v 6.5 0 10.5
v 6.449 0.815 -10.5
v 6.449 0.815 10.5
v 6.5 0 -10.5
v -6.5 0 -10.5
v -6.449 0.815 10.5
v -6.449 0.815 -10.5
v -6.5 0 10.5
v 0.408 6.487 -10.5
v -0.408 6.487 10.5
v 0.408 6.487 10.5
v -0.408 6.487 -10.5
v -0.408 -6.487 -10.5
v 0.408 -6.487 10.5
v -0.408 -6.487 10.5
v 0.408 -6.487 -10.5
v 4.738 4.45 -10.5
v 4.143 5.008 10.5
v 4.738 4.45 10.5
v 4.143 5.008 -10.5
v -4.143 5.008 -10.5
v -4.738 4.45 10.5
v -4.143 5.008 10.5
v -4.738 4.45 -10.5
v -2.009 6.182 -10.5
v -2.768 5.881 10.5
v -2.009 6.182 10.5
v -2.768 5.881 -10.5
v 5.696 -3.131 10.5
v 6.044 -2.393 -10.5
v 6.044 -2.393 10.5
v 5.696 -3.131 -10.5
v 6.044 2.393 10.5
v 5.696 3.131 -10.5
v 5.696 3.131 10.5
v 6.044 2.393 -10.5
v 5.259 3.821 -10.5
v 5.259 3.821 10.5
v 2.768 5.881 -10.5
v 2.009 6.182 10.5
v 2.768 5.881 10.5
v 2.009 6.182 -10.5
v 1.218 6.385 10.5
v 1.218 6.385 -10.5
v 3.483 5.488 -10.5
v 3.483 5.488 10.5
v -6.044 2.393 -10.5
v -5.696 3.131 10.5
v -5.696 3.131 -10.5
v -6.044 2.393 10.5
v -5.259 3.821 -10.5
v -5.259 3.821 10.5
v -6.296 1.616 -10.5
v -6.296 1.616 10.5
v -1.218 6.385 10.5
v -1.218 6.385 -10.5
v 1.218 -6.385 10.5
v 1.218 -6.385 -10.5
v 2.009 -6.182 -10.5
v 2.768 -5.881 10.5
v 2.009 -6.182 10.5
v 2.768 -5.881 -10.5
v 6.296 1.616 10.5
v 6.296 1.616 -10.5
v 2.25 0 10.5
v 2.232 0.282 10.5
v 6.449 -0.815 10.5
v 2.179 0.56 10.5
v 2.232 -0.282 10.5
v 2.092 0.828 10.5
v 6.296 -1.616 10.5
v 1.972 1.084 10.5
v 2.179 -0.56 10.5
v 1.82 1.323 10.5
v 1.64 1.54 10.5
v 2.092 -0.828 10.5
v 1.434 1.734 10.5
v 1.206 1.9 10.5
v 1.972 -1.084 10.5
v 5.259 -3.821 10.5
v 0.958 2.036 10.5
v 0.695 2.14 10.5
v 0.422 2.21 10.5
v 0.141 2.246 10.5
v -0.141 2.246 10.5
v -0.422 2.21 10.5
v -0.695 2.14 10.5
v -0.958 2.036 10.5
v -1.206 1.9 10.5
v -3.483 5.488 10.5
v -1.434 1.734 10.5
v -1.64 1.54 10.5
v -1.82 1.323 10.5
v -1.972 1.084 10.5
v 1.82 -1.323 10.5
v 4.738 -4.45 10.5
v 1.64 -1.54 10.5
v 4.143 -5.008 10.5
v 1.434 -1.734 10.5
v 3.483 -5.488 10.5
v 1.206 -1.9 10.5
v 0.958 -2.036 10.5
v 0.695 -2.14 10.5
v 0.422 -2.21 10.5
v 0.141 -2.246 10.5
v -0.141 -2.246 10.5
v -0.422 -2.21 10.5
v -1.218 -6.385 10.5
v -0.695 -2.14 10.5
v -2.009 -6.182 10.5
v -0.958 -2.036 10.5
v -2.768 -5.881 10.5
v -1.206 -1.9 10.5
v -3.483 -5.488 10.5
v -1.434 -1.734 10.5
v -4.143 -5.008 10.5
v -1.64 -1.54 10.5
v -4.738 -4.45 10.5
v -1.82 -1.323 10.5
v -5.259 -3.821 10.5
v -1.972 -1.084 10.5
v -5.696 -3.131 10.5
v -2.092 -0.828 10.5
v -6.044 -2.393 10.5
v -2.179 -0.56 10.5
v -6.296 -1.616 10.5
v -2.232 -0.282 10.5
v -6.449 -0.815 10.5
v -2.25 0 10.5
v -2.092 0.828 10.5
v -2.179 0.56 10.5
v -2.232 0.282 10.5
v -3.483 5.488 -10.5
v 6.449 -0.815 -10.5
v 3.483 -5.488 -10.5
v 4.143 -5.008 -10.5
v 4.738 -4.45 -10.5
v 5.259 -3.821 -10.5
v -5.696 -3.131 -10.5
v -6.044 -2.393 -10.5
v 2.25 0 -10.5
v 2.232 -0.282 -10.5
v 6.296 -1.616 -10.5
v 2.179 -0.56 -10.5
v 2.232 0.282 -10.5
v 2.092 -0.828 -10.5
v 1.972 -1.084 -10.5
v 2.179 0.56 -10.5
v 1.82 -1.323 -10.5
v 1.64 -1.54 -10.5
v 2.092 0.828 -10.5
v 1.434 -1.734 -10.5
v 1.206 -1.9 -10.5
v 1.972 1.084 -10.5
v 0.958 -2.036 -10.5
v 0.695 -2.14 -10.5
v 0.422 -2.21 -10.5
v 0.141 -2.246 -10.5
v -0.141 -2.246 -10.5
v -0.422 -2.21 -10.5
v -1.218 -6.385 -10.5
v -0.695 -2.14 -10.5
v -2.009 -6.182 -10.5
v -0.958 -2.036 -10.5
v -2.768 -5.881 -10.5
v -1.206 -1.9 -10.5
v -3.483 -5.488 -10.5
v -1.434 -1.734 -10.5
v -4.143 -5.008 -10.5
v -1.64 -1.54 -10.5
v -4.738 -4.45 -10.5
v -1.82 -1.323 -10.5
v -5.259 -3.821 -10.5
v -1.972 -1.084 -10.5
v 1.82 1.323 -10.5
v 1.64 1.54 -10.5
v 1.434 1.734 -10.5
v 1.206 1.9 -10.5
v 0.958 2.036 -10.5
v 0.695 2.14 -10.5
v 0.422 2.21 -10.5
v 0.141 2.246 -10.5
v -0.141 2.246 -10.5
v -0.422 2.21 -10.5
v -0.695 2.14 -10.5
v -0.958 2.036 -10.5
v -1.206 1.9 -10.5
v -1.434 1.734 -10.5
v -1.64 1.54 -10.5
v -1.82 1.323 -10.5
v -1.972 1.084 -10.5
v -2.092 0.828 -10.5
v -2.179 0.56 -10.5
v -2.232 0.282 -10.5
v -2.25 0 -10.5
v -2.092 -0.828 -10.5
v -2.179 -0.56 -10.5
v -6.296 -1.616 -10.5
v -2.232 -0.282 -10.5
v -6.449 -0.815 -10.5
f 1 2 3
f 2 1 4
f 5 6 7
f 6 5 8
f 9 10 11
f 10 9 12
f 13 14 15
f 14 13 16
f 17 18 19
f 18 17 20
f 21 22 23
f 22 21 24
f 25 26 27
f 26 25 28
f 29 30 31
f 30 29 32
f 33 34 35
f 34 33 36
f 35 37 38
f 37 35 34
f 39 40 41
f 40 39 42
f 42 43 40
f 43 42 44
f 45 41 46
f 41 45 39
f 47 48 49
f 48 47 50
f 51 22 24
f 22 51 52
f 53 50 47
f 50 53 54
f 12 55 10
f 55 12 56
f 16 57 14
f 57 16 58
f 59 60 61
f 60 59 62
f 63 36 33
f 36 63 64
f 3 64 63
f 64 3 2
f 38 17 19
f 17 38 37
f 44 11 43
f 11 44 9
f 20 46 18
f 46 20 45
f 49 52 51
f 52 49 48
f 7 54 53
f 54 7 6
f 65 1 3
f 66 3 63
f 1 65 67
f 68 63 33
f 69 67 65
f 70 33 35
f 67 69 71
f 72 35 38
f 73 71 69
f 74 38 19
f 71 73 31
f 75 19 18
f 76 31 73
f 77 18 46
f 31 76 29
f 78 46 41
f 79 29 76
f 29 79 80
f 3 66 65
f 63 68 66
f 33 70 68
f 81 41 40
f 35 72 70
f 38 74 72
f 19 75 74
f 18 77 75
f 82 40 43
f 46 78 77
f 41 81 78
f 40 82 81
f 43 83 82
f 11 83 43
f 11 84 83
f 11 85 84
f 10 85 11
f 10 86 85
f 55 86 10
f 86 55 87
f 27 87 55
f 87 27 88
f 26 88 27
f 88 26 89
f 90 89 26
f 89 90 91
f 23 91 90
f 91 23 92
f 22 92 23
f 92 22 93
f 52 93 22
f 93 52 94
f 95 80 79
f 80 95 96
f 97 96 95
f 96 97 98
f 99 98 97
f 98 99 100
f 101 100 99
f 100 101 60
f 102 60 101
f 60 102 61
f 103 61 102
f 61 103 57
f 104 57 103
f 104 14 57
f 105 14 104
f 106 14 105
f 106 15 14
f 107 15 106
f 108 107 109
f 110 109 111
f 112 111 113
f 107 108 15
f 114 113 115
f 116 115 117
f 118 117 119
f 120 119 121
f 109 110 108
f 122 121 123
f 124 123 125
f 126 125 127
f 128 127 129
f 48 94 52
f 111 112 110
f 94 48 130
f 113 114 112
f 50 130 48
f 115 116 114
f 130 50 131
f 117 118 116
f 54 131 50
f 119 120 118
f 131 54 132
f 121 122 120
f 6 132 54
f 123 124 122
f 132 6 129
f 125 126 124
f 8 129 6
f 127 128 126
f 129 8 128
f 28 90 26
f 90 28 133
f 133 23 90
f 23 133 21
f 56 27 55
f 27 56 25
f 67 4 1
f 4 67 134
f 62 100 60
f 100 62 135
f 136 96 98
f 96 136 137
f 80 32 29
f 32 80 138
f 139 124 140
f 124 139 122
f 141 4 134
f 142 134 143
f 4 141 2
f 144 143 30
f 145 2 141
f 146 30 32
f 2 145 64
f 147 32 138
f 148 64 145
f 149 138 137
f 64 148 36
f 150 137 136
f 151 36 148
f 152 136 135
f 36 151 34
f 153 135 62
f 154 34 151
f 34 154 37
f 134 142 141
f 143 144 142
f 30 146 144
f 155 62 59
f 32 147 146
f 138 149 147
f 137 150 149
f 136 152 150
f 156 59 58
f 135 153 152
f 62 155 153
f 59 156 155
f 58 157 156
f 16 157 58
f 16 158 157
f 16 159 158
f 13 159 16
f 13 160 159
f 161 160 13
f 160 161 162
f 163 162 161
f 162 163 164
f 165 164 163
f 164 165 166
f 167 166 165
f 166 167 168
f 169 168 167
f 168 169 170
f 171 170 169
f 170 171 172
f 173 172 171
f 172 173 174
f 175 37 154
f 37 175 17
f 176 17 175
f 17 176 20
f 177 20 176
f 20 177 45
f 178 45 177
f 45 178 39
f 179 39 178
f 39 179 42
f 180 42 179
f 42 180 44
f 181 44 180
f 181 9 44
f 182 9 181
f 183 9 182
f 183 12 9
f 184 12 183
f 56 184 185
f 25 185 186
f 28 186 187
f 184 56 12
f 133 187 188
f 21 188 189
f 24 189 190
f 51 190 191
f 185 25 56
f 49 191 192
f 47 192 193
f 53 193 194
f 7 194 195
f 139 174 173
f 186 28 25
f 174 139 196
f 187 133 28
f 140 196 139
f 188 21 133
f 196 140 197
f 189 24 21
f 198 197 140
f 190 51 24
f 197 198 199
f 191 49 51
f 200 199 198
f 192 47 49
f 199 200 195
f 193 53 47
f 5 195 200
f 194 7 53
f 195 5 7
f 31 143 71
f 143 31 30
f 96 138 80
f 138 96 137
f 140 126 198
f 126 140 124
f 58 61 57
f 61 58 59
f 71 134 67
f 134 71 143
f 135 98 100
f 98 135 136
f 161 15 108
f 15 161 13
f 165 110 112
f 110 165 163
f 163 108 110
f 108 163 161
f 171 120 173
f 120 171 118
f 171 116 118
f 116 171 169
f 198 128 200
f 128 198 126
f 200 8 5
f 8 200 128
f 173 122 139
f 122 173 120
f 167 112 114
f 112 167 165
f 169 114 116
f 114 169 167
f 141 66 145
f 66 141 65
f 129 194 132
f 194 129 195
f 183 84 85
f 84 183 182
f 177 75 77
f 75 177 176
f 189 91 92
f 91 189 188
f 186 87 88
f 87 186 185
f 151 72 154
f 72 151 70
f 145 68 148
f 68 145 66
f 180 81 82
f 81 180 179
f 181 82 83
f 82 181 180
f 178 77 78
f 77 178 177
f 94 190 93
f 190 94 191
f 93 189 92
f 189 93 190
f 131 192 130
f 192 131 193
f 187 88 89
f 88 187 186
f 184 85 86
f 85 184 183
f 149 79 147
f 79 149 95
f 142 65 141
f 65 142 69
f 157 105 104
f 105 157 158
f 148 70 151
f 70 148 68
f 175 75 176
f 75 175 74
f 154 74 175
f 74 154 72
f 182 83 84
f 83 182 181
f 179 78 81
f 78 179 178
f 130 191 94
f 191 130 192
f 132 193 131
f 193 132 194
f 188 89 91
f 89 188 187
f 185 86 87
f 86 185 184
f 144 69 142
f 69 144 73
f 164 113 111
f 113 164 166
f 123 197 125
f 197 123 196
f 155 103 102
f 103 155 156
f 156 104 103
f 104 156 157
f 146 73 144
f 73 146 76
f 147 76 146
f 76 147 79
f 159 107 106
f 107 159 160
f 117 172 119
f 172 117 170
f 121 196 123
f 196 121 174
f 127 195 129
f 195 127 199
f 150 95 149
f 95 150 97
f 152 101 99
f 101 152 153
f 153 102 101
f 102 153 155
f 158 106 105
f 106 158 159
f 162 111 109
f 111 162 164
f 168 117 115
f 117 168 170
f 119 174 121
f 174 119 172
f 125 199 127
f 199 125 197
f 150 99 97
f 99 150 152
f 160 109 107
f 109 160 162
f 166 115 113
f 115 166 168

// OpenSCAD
$fn = 50;


difference() {
	union() {
		translate(v = [0, 0, -10.5000000000]) {
			cylinder(h = 21, r = 6.5000000000);
		}
	}
	union() {
		translate(v = [0, 0, -100.0000000000]) {
			cylinder(h = 200, r = 2.2500000000);
		}
	}
}
